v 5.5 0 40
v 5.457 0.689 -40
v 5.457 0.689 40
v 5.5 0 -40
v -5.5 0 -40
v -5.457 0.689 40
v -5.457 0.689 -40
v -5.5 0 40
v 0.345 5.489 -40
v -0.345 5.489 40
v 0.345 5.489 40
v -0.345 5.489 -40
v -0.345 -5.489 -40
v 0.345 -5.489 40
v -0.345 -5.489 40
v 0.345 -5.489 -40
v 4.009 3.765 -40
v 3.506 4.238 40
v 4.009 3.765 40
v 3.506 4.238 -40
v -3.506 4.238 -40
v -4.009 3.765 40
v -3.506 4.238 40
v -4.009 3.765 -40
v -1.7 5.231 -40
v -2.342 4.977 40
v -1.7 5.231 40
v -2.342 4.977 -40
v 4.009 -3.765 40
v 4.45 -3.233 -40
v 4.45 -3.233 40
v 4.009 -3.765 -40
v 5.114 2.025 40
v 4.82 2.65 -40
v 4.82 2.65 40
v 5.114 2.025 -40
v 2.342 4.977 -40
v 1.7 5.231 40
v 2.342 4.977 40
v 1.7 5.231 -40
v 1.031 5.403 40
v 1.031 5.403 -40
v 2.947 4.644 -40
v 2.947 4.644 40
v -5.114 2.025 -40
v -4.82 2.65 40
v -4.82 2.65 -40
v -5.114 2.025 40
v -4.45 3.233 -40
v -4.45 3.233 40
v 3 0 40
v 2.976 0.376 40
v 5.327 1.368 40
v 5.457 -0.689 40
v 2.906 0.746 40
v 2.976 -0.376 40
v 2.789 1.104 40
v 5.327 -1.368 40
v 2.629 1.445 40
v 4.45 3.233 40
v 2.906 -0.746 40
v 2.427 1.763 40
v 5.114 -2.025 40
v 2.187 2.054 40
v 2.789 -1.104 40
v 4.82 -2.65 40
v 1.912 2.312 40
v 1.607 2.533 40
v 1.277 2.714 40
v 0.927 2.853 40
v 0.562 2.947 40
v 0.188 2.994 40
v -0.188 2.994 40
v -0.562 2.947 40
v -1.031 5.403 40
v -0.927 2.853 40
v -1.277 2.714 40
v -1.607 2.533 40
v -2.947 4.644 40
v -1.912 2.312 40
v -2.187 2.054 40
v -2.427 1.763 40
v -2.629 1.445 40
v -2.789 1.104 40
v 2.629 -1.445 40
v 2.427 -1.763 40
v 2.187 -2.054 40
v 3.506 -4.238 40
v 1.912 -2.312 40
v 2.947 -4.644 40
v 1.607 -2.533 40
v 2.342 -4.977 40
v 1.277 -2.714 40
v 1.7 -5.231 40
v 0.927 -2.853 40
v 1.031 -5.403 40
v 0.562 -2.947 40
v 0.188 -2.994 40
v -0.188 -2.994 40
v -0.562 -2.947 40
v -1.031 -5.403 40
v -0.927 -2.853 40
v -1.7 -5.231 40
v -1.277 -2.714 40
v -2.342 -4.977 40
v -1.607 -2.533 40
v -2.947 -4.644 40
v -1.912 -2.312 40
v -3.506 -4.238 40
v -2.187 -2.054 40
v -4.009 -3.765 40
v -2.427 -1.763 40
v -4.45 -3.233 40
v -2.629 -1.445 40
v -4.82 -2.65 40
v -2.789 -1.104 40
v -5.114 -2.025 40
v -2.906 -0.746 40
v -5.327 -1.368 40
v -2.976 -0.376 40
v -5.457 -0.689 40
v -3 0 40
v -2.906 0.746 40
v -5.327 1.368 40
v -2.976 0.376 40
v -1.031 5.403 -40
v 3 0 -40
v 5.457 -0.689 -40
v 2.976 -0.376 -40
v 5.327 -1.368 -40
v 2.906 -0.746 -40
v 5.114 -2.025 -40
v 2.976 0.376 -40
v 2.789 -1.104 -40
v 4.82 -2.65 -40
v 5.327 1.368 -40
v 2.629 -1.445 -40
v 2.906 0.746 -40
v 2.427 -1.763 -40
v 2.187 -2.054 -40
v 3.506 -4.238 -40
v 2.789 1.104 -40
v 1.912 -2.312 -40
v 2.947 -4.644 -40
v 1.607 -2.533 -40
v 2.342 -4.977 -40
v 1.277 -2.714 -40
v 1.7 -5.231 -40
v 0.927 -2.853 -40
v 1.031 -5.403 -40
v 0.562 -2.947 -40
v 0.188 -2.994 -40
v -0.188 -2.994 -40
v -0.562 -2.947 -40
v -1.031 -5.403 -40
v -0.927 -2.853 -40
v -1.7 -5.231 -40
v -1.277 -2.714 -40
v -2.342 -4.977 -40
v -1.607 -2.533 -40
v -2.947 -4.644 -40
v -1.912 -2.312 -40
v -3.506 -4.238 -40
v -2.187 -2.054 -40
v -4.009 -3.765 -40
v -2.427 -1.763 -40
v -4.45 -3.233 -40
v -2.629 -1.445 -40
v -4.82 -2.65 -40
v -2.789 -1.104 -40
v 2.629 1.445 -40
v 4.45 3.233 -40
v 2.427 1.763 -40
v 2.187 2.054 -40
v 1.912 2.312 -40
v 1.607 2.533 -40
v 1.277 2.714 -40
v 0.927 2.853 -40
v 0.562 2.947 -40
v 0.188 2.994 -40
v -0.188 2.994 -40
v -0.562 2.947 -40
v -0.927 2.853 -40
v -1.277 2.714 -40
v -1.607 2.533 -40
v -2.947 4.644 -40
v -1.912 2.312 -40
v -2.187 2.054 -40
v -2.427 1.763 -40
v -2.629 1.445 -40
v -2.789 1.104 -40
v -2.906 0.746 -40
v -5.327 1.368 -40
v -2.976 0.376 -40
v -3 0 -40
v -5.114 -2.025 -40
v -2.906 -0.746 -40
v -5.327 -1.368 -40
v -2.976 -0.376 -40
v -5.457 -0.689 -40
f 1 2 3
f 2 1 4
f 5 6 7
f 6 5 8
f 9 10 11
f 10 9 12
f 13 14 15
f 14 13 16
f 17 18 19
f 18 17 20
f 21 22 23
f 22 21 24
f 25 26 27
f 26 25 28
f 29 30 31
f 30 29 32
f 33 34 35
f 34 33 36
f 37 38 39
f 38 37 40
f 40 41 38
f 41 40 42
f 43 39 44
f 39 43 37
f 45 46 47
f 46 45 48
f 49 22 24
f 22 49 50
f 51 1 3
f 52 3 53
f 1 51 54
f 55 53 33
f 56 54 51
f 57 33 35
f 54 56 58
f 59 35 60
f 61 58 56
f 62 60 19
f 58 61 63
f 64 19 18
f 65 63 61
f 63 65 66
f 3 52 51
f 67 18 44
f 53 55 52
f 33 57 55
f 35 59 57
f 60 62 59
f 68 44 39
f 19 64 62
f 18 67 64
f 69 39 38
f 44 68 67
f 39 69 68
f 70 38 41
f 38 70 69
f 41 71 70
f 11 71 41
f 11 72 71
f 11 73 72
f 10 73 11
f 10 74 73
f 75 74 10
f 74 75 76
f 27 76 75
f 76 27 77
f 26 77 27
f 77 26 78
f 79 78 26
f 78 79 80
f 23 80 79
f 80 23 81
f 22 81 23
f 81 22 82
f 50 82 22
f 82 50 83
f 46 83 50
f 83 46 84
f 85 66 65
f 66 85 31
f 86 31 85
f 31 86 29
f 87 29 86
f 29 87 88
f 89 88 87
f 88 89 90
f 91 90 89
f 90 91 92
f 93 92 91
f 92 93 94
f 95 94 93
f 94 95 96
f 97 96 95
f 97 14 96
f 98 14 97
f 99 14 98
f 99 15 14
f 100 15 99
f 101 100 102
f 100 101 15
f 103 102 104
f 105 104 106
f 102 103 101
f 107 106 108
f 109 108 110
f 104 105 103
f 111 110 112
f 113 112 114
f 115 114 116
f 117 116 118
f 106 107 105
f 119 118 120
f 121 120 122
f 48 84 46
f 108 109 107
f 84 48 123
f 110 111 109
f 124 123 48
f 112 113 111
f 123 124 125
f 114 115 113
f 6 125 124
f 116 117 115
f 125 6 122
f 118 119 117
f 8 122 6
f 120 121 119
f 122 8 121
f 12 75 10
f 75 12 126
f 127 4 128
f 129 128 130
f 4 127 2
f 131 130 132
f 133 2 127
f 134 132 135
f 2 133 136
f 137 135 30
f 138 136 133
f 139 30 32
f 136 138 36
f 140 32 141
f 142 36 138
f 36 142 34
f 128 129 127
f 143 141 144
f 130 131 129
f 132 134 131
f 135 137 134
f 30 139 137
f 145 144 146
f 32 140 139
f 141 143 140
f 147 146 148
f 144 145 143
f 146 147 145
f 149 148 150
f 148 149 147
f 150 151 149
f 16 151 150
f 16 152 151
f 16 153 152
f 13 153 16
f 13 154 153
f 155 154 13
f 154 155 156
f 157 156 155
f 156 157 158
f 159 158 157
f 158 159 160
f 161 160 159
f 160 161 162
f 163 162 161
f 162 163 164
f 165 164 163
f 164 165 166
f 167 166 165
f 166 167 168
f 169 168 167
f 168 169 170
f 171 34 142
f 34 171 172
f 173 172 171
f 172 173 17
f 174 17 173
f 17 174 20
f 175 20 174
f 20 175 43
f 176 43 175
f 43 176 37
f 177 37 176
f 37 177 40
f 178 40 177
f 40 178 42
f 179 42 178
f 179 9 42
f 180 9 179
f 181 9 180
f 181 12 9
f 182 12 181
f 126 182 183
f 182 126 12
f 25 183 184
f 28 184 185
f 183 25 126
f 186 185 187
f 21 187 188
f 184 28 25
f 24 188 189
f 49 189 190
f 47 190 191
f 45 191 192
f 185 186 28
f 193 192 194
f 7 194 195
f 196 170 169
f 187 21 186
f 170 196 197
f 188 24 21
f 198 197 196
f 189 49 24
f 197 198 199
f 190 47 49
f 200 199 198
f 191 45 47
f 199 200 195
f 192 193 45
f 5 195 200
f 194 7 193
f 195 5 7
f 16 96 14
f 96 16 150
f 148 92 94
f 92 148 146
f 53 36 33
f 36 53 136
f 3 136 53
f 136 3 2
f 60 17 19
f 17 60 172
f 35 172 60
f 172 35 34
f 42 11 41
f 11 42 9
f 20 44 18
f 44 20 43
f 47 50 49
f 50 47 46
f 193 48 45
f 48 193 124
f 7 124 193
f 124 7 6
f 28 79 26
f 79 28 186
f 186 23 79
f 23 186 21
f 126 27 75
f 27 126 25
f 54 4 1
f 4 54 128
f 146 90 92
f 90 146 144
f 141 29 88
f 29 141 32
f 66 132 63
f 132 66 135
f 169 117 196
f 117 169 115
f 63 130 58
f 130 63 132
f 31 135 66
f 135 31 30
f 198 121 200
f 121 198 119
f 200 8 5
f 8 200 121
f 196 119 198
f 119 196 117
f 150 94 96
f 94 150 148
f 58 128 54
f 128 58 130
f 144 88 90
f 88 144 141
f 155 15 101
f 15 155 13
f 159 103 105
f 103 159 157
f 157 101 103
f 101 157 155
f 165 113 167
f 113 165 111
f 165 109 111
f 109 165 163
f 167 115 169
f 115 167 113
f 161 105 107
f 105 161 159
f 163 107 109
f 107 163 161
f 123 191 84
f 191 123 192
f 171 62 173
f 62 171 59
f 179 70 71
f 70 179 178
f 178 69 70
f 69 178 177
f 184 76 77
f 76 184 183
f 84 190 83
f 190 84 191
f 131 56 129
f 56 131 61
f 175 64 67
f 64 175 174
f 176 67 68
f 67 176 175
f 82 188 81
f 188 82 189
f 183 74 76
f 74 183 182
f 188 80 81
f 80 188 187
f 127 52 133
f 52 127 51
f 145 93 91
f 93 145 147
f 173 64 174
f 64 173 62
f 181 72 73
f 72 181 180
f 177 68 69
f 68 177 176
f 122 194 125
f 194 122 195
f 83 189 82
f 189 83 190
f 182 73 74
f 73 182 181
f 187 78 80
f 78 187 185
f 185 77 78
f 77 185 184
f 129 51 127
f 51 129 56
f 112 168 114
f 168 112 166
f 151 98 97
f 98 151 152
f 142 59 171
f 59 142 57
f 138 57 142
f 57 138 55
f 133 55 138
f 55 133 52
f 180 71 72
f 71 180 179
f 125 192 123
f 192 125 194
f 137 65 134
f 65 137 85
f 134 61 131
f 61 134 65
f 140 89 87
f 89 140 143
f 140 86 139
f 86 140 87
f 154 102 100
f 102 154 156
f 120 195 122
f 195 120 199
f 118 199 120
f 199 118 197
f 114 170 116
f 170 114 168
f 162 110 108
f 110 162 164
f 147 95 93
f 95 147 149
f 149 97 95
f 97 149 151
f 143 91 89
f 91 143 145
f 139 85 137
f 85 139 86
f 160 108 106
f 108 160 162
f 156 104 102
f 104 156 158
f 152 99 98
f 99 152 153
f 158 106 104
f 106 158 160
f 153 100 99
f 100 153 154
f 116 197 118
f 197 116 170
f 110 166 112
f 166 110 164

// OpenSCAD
$fn = 50;


difference() {
	union() {
		translate(v = [0, 0, -40.0000000000]) {
			cylinder(h = 80, r = 5.5000000000);
		}
	}
	union() {
		translate(v = [0, 0, -100.0000000000]) {
			cylinder(h = 200, r = 3);
		}
	}
}
